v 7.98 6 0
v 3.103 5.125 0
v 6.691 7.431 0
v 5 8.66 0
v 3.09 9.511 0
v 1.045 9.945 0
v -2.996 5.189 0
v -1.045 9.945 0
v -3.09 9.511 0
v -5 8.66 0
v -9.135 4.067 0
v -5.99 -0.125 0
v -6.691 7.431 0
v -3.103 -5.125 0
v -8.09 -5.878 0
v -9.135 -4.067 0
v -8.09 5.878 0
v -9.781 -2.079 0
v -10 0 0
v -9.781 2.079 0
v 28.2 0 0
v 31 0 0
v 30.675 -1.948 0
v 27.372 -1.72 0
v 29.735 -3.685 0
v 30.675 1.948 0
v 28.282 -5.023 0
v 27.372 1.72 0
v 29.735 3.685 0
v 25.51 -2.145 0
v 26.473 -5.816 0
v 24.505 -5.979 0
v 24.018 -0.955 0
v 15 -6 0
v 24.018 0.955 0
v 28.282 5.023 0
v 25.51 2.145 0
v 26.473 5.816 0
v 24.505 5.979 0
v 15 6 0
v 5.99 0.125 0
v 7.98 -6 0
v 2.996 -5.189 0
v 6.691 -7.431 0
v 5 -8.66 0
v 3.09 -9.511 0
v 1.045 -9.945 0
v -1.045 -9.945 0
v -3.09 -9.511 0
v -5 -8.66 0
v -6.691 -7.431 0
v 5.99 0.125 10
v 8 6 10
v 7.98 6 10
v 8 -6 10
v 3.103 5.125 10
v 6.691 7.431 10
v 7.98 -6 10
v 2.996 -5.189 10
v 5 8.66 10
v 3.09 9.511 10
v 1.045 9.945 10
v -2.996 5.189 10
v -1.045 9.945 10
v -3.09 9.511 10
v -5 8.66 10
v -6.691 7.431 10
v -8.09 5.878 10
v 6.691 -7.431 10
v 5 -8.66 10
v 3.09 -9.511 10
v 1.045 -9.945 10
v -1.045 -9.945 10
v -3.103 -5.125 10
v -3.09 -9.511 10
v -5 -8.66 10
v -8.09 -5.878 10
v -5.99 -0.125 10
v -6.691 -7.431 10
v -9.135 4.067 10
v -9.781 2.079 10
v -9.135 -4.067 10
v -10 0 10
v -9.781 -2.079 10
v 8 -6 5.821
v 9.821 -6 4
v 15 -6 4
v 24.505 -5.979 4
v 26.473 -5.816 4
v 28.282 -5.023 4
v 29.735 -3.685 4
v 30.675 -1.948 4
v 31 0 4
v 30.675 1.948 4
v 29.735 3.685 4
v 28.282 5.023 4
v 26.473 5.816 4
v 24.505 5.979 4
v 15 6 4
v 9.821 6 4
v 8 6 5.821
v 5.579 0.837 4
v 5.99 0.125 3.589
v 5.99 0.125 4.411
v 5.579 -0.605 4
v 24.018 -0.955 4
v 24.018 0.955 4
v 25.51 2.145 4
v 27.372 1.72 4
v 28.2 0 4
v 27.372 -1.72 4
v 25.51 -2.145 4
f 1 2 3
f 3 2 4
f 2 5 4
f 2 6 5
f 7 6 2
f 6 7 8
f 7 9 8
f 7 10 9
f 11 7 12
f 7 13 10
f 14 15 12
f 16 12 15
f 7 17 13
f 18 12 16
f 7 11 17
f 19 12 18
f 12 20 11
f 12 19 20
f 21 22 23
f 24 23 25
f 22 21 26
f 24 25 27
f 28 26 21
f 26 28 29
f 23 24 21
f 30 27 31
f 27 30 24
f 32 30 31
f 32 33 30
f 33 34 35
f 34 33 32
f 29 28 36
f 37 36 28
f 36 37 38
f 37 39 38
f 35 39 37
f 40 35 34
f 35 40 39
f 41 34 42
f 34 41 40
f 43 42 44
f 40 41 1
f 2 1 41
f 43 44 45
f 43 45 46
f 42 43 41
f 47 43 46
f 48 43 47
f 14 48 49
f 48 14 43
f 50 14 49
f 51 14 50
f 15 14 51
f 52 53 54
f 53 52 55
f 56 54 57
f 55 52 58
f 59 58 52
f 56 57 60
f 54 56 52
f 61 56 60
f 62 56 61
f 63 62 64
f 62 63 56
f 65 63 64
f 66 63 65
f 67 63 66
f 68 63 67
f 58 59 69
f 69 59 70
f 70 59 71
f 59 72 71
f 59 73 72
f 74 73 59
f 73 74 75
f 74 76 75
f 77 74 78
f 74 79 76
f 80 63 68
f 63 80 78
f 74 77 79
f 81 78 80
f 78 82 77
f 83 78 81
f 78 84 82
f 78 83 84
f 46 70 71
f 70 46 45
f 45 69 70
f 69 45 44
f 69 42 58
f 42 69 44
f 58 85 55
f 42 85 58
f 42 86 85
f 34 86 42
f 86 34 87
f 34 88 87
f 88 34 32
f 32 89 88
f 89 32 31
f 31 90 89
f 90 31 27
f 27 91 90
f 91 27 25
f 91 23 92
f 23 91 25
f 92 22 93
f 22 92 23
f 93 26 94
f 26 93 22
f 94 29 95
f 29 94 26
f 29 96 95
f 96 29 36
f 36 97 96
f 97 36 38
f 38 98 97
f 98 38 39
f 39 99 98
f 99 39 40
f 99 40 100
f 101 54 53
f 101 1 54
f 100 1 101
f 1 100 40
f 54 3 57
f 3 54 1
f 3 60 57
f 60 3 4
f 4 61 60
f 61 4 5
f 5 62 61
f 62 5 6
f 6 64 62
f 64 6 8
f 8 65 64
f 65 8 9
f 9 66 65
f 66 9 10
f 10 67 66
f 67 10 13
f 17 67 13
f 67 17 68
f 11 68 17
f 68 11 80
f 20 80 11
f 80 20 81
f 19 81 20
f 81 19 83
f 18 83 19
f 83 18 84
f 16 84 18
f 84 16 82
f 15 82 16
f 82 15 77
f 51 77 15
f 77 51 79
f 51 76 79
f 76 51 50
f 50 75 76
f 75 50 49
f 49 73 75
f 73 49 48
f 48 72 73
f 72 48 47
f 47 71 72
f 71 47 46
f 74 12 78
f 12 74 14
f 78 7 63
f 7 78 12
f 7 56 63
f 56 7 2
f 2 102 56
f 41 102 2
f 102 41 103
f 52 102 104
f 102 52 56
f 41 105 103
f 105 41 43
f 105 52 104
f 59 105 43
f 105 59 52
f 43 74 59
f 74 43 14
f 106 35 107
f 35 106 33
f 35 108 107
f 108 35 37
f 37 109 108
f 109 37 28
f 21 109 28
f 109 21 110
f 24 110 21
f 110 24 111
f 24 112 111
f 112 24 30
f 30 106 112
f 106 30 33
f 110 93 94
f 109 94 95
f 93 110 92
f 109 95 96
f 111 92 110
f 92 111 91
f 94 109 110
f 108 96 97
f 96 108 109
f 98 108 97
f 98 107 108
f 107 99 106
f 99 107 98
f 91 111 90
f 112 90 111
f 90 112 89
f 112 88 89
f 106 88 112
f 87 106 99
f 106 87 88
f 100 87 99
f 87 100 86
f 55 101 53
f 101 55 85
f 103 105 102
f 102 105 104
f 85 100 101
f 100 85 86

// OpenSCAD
//  polygon([[0,0],[5,0],[5,5*tan(30)]]);

ang = 30;
adj = 5.25;
opp = 5*tan(ang);
hyp = sqrt(pow(adj,2) + pow(opp,2));
echo(ang, adj, opp, hyp);

difference(){
    linear_extrude(height=10) difference(){
        union(){
            circle(10);
            hull(){
                translate([10,0]) square([10,12],center=true);
                translate([25,0]) circle(6);
            }
        }
        rotate([0,0,30]) polygon([[adj,opp],[0,hyp],[-adj,opp],
                 [-adj,-opp],[0,-hyp],[adj,-opp]]);
        translate([26,0]) circle(2.2);
    }
    translate([8,-13,4]) cube(26);
}
translate([7.7,0,4]) rotate([90,0,0]) 
        rotate([0,0,45]) cube([3,3,12],center=true);

module actuator(act=0) color("gray"){
    cylinder(r=11,h=98);
    cube([10,14,10],center=true);
    translate([0,0,act]) difference(){
        union(){
            cylinder(r=6,h=128);
            translate([0,0,128]) sphere(6);
        }
        translate([-7,2.5,122]) cube([14,7,26]);
        translate([0,10,128]) rotate([90,0,0]) cylinder(r=2.5,h=20);
        translate([-7,-9.5,122]) cube([14,7,26]);
    }
    translate([0,0,47]) rotate([0,90,0]) cylinder(r=14.5,h=44);
    translate([-12.5,-12.5,0]) cube([25,25,82]);
    difference(){
        translate([15.5,14.5,23]) 
                rotate([90,0,0]) cylinder(r=4,h=29);
        translate([15,14.5,23]) 
                rotate([90,0,0]) cylinder(r=1.8,h=30);
    }
    difference(){
        translate([15.5,14.5,81]) 
                rotate([90,0,0]) cylinder(r=4,h=29);
        translate([15,14.5,81]) 
                rotate([90,0,0]) cylinder(r=1.8,h=30);
    }
}
